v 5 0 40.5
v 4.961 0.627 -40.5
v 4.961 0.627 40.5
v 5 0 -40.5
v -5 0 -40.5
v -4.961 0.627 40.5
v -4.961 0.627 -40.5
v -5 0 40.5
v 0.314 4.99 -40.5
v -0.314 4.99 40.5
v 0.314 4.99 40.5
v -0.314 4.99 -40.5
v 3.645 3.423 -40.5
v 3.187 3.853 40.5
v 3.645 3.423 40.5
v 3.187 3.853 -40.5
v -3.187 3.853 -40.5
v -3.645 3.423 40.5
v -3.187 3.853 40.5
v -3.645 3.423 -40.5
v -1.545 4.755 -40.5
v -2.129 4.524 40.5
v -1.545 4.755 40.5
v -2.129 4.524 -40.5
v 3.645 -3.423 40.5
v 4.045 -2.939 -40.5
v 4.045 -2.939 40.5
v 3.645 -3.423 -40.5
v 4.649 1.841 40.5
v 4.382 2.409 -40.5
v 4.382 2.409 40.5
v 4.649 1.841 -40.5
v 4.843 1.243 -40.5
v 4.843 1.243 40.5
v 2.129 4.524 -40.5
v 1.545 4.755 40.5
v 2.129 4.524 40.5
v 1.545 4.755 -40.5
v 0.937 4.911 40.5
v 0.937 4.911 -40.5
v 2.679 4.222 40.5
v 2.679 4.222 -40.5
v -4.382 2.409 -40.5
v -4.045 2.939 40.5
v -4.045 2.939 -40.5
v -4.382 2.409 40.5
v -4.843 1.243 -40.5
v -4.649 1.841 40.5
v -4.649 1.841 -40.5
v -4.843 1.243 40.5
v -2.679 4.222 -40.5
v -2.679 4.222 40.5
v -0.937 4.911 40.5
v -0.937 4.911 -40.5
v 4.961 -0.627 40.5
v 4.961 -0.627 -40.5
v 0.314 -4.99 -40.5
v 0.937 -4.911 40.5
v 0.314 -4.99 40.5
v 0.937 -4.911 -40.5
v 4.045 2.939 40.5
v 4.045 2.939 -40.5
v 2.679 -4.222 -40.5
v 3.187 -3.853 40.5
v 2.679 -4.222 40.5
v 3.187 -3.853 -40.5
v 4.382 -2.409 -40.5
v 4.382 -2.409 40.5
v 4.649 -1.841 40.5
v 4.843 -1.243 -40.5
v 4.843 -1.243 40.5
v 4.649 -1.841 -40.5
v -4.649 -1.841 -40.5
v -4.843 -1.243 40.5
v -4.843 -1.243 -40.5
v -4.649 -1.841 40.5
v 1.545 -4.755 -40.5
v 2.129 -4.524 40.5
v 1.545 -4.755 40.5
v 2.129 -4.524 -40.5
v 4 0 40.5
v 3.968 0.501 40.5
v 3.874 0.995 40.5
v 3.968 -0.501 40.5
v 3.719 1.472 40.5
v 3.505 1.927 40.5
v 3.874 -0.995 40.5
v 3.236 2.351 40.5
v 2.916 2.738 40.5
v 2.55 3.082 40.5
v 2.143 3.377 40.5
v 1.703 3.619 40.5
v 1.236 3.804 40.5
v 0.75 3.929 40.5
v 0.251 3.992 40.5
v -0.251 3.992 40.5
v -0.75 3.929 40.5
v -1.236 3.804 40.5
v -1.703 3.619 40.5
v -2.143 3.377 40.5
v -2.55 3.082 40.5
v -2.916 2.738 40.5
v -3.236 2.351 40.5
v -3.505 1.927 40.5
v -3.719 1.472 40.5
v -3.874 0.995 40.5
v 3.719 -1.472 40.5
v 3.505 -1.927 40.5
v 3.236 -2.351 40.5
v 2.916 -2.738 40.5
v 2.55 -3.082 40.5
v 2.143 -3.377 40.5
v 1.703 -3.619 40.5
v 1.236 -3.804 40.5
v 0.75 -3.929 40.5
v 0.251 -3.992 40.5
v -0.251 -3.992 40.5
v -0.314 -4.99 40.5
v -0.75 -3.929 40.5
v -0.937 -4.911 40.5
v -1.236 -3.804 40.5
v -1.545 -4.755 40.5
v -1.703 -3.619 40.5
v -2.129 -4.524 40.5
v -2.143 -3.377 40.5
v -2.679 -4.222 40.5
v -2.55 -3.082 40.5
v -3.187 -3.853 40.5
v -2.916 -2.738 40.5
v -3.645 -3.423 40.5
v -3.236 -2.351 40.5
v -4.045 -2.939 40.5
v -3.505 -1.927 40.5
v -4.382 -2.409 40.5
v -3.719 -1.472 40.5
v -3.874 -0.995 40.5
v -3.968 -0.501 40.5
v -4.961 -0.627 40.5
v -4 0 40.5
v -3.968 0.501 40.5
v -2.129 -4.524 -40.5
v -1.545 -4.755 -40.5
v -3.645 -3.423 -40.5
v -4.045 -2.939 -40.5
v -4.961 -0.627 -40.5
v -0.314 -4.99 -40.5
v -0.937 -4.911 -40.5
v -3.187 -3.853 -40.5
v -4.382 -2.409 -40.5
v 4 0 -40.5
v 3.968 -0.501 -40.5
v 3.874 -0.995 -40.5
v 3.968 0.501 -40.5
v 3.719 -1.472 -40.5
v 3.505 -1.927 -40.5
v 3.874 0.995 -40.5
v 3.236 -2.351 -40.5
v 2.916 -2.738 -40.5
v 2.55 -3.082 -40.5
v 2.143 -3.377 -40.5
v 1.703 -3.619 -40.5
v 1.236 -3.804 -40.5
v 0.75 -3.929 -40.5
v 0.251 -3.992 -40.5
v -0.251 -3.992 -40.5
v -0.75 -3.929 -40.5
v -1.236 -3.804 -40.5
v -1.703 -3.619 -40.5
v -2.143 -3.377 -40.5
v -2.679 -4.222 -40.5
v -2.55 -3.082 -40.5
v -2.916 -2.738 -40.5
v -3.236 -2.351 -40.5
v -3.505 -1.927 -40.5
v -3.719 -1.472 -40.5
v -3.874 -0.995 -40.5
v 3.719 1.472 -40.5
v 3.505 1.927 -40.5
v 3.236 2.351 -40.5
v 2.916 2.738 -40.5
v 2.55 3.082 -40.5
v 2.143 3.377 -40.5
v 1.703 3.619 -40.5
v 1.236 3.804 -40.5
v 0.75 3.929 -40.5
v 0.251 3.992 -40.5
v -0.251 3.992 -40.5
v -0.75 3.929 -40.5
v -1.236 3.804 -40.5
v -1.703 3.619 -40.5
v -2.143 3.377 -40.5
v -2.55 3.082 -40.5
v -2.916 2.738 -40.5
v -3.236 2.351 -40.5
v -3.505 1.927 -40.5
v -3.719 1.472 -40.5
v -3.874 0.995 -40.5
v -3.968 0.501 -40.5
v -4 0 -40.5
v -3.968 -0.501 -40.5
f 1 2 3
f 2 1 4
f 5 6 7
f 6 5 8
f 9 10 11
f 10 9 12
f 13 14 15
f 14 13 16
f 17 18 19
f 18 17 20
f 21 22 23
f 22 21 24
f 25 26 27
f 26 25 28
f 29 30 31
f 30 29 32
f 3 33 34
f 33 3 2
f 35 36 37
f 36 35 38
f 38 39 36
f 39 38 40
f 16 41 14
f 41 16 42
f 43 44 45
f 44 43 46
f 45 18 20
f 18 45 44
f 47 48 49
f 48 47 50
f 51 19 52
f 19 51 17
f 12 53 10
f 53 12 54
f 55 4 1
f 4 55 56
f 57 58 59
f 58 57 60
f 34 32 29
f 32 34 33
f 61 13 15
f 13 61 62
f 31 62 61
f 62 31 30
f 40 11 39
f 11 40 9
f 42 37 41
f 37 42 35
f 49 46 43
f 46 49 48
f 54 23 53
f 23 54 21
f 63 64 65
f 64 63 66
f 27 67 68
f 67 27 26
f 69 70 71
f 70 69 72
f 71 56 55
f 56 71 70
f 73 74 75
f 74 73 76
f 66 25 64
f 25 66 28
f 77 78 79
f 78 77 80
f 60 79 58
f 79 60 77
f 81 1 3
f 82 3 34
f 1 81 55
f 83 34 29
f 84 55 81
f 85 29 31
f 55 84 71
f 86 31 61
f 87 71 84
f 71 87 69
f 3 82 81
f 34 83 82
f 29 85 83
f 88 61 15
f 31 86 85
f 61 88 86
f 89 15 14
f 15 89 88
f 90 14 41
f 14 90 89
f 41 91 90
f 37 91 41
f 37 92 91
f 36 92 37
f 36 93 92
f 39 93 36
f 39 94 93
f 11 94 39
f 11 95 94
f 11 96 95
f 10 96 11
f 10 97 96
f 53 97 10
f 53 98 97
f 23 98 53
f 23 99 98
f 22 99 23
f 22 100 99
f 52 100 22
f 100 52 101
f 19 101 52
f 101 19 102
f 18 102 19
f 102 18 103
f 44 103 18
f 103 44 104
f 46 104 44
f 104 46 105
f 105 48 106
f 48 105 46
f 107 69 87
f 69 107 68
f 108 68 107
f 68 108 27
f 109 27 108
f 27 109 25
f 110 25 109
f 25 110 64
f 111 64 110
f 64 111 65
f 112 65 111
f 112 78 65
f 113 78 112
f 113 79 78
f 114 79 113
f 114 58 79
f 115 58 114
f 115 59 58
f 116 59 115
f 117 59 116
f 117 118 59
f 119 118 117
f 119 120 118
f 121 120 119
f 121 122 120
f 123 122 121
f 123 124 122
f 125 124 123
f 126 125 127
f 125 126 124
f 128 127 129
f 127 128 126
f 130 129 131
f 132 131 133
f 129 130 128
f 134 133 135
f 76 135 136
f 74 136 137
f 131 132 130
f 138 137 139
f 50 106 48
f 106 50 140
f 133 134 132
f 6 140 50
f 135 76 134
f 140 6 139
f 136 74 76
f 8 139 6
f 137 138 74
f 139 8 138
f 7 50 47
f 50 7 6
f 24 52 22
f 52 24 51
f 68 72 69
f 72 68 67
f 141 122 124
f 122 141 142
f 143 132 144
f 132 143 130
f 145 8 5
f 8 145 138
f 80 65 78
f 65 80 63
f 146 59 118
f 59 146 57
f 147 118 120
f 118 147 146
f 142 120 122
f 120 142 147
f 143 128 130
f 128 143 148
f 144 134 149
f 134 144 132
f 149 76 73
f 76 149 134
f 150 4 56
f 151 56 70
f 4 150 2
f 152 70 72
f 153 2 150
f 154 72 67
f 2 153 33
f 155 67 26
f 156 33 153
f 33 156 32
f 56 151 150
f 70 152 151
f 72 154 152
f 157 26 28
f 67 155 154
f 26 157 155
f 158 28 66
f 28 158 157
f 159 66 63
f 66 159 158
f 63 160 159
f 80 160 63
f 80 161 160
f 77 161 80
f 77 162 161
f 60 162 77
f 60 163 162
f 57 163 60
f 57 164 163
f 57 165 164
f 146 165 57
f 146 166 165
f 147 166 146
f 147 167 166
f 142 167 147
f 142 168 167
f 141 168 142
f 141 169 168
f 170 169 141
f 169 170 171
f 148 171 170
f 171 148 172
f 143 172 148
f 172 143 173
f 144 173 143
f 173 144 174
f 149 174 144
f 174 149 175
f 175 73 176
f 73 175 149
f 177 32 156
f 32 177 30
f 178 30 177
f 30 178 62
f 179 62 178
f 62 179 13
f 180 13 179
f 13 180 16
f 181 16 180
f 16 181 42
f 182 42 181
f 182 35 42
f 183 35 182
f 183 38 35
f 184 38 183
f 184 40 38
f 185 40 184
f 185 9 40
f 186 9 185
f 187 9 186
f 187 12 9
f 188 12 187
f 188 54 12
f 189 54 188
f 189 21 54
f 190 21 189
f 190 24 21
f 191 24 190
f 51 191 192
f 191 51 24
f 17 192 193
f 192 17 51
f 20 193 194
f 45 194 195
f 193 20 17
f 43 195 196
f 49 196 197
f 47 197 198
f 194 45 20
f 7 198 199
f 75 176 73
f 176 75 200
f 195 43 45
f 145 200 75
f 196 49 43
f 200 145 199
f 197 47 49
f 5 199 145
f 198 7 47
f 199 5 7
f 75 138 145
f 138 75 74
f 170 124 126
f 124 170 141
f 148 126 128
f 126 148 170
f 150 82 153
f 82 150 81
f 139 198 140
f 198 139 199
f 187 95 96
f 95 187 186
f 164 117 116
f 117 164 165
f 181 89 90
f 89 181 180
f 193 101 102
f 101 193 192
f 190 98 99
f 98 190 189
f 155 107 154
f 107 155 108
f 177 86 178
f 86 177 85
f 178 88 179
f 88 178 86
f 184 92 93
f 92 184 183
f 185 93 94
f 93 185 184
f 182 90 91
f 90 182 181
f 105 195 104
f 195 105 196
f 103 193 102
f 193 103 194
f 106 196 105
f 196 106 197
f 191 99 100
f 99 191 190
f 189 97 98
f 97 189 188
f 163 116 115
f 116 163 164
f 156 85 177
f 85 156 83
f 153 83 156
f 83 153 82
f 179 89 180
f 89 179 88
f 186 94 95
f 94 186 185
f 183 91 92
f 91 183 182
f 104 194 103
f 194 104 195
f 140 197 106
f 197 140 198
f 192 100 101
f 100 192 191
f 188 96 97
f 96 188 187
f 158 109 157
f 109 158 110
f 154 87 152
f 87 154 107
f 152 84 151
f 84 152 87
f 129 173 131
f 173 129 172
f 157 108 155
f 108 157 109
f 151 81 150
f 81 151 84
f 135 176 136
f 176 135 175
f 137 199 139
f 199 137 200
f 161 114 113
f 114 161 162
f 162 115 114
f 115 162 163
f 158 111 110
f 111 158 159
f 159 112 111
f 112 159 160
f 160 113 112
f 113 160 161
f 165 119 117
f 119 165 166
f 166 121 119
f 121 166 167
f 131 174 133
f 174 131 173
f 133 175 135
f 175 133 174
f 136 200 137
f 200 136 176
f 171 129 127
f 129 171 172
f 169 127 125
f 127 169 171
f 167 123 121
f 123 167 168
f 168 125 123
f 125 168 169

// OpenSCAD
$fn = 50;


difference() {
	union() {
		translate(v = [0, 0, -40.5000000000]) {
			cylinder(h = 81, r = 5.0000000000);
		}
	}
	union() {
		translate(v = [0, 0, -100.0000000000]) {
			cylinder(h = 200, r = 4.0000000000);
		}
	}
}
